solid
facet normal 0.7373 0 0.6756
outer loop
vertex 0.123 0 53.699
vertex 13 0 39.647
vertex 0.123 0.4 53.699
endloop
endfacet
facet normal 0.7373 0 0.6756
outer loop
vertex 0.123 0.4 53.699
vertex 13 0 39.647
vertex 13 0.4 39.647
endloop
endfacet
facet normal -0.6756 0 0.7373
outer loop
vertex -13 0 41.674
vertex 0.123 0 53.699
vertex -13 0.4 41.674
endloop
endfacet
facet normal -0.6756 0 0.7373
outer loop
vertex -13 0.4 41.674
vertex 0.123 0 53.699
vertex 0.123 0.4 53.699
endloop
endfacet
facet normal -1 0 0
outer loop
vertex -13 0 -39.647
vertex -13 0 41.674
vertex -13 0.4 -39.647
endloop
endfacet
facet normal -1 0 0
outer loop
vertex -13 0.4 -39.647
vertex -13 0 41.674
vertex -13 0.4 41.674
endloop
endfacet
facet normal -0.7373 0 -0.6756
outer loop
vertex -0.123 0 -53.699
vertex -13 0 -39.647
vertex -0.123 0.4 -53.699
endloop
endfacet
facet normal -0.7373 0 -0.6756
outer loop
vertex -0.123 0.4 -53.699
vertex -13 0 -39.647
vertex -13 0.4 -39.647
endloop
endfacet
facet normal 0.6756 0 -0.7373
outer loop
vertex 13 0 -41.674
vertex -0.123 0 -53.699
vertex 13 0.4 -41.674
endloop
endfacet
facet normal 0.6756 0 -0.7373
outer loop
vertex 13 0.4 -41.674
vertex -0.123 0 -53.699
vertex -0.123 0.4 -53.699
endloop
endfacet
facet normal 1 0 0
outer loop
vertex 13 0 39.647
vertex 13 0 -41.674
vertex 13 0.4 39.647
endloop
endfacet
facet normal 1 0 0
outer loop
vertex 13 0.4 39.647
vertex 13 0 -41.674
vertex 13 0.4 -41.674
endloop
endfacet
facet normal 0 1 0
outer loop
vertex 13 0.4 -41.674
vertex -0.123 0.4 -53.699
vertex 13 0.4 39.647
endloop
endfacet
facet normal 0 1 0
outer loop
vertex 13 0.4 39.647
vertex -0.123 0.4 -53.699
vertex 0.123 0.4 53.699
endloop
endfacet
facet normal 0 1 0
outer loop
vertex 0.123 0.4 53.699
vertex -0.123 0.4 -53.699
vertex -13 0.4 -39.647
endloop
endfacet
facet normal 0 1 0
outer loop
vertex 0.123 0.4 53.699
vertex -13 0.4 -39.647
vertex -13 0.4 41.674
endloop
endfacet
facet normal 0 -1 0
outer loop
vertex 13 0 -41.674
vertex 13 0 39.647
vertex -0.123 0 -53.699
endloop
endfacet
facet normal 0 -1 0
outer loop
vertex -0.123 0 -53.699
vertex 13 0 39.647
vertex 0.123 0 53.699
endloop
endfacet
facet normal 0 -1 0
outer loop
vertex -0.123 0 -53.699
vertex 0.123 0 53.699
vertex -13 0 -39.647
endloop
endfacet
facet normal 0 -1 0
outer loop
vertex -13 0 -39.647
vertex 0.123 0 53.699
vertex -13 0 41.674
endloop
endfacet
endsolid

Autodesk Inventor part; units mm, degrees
ref_plane "YZ Plane" through (0, 0, 0) normal (1, 0, 0) x (0, 1, 0)
ref_plane "XZ Plane" through (0, 0, 0) normal (0, 1, 0) x (-1, 0, 0)
ref_plane "XY Plane" through (0, 0, 0) normal (0, 0, 1) x (1, 0, 0)
sketch "Sketch1" plane through (0, 0, 0) normal (0, 1, 0) x (-1, 0, 0)
  line L0 (13, -39.6468) -> (13, 41.6738)
  line L1 (13, 41.6738) -> (-0.1234, 53.6991)
  line L2 (-0.1234, 53.6991) -> (-13, 39.6468)
  line L3 (-13, 39.6468) -> (-13, -41.6738)
  line L4 (-13, -41.6738) -> (0.1234, -53.6991)
  line L5 (0.1234, -53.6991) -> (13, -39.6468)
  line L6 (-9.6864, 40.3026) -> (-3.378, 47.187)
  arc A0 (3.6864, 47.4955) -> (-3.378, 47.187) centre (0.3084, 43.8091) ccw
  line L7 (3.6864, 47.4955) -> (9.378, 42.2801)
  arc A1 (11, 38.5937) -> (9.378, 42.2801) centre (6, 38.5937) ccw
  line L8 (11, 38.5937) -> (11, -36.9246)
  arc A2 (9.6864, -40.3026) -> (11, -36.9246) centre (6, -36.9246) ccw
  line L9 (9.6864, -40.3026) -> (3.378, -47.187)
  arc A3 (-3.6864, -47.4955) -> (3.378, -47.187) centre (-0.3084, -43.8091) ccw
  line L10 (-3.6864, -47.4955) -> (-9.378, -42.2801)
  arc A4 (-11, -38.5937) -> (-9.378, -42.2801) centre (-6, -38.5937) ccw
  line L11 (-11, -38.5937) -> (-11, 36.9246)
  arc A5 (-9.6864, 40.3026) -> (-11, 36.9246) centre (-6, 36.9246) ccw
  line L12 (12.8, -39.569) -> (0.111, -53.4166)
  line L13 (0.111, -53.4166) -> (-12.8, -41.5858)
  line L14 (-12.8, -41.5858) -> (-12.8, 39.569)
  line L15 (-12.8, 39.569) -> (-0.111, 53.4166)
  point P0 (0, 0)
  point P1 (0, 0)
extrude "Extrusion1" add sketch "Sketch1" along normal blind 0.4 contours L5 L4 L3 L2 L1 L0 | L6 A0 L7 A1 L8 A2 L9 A3 L10 A4 L11 A5
properties part number "g"
